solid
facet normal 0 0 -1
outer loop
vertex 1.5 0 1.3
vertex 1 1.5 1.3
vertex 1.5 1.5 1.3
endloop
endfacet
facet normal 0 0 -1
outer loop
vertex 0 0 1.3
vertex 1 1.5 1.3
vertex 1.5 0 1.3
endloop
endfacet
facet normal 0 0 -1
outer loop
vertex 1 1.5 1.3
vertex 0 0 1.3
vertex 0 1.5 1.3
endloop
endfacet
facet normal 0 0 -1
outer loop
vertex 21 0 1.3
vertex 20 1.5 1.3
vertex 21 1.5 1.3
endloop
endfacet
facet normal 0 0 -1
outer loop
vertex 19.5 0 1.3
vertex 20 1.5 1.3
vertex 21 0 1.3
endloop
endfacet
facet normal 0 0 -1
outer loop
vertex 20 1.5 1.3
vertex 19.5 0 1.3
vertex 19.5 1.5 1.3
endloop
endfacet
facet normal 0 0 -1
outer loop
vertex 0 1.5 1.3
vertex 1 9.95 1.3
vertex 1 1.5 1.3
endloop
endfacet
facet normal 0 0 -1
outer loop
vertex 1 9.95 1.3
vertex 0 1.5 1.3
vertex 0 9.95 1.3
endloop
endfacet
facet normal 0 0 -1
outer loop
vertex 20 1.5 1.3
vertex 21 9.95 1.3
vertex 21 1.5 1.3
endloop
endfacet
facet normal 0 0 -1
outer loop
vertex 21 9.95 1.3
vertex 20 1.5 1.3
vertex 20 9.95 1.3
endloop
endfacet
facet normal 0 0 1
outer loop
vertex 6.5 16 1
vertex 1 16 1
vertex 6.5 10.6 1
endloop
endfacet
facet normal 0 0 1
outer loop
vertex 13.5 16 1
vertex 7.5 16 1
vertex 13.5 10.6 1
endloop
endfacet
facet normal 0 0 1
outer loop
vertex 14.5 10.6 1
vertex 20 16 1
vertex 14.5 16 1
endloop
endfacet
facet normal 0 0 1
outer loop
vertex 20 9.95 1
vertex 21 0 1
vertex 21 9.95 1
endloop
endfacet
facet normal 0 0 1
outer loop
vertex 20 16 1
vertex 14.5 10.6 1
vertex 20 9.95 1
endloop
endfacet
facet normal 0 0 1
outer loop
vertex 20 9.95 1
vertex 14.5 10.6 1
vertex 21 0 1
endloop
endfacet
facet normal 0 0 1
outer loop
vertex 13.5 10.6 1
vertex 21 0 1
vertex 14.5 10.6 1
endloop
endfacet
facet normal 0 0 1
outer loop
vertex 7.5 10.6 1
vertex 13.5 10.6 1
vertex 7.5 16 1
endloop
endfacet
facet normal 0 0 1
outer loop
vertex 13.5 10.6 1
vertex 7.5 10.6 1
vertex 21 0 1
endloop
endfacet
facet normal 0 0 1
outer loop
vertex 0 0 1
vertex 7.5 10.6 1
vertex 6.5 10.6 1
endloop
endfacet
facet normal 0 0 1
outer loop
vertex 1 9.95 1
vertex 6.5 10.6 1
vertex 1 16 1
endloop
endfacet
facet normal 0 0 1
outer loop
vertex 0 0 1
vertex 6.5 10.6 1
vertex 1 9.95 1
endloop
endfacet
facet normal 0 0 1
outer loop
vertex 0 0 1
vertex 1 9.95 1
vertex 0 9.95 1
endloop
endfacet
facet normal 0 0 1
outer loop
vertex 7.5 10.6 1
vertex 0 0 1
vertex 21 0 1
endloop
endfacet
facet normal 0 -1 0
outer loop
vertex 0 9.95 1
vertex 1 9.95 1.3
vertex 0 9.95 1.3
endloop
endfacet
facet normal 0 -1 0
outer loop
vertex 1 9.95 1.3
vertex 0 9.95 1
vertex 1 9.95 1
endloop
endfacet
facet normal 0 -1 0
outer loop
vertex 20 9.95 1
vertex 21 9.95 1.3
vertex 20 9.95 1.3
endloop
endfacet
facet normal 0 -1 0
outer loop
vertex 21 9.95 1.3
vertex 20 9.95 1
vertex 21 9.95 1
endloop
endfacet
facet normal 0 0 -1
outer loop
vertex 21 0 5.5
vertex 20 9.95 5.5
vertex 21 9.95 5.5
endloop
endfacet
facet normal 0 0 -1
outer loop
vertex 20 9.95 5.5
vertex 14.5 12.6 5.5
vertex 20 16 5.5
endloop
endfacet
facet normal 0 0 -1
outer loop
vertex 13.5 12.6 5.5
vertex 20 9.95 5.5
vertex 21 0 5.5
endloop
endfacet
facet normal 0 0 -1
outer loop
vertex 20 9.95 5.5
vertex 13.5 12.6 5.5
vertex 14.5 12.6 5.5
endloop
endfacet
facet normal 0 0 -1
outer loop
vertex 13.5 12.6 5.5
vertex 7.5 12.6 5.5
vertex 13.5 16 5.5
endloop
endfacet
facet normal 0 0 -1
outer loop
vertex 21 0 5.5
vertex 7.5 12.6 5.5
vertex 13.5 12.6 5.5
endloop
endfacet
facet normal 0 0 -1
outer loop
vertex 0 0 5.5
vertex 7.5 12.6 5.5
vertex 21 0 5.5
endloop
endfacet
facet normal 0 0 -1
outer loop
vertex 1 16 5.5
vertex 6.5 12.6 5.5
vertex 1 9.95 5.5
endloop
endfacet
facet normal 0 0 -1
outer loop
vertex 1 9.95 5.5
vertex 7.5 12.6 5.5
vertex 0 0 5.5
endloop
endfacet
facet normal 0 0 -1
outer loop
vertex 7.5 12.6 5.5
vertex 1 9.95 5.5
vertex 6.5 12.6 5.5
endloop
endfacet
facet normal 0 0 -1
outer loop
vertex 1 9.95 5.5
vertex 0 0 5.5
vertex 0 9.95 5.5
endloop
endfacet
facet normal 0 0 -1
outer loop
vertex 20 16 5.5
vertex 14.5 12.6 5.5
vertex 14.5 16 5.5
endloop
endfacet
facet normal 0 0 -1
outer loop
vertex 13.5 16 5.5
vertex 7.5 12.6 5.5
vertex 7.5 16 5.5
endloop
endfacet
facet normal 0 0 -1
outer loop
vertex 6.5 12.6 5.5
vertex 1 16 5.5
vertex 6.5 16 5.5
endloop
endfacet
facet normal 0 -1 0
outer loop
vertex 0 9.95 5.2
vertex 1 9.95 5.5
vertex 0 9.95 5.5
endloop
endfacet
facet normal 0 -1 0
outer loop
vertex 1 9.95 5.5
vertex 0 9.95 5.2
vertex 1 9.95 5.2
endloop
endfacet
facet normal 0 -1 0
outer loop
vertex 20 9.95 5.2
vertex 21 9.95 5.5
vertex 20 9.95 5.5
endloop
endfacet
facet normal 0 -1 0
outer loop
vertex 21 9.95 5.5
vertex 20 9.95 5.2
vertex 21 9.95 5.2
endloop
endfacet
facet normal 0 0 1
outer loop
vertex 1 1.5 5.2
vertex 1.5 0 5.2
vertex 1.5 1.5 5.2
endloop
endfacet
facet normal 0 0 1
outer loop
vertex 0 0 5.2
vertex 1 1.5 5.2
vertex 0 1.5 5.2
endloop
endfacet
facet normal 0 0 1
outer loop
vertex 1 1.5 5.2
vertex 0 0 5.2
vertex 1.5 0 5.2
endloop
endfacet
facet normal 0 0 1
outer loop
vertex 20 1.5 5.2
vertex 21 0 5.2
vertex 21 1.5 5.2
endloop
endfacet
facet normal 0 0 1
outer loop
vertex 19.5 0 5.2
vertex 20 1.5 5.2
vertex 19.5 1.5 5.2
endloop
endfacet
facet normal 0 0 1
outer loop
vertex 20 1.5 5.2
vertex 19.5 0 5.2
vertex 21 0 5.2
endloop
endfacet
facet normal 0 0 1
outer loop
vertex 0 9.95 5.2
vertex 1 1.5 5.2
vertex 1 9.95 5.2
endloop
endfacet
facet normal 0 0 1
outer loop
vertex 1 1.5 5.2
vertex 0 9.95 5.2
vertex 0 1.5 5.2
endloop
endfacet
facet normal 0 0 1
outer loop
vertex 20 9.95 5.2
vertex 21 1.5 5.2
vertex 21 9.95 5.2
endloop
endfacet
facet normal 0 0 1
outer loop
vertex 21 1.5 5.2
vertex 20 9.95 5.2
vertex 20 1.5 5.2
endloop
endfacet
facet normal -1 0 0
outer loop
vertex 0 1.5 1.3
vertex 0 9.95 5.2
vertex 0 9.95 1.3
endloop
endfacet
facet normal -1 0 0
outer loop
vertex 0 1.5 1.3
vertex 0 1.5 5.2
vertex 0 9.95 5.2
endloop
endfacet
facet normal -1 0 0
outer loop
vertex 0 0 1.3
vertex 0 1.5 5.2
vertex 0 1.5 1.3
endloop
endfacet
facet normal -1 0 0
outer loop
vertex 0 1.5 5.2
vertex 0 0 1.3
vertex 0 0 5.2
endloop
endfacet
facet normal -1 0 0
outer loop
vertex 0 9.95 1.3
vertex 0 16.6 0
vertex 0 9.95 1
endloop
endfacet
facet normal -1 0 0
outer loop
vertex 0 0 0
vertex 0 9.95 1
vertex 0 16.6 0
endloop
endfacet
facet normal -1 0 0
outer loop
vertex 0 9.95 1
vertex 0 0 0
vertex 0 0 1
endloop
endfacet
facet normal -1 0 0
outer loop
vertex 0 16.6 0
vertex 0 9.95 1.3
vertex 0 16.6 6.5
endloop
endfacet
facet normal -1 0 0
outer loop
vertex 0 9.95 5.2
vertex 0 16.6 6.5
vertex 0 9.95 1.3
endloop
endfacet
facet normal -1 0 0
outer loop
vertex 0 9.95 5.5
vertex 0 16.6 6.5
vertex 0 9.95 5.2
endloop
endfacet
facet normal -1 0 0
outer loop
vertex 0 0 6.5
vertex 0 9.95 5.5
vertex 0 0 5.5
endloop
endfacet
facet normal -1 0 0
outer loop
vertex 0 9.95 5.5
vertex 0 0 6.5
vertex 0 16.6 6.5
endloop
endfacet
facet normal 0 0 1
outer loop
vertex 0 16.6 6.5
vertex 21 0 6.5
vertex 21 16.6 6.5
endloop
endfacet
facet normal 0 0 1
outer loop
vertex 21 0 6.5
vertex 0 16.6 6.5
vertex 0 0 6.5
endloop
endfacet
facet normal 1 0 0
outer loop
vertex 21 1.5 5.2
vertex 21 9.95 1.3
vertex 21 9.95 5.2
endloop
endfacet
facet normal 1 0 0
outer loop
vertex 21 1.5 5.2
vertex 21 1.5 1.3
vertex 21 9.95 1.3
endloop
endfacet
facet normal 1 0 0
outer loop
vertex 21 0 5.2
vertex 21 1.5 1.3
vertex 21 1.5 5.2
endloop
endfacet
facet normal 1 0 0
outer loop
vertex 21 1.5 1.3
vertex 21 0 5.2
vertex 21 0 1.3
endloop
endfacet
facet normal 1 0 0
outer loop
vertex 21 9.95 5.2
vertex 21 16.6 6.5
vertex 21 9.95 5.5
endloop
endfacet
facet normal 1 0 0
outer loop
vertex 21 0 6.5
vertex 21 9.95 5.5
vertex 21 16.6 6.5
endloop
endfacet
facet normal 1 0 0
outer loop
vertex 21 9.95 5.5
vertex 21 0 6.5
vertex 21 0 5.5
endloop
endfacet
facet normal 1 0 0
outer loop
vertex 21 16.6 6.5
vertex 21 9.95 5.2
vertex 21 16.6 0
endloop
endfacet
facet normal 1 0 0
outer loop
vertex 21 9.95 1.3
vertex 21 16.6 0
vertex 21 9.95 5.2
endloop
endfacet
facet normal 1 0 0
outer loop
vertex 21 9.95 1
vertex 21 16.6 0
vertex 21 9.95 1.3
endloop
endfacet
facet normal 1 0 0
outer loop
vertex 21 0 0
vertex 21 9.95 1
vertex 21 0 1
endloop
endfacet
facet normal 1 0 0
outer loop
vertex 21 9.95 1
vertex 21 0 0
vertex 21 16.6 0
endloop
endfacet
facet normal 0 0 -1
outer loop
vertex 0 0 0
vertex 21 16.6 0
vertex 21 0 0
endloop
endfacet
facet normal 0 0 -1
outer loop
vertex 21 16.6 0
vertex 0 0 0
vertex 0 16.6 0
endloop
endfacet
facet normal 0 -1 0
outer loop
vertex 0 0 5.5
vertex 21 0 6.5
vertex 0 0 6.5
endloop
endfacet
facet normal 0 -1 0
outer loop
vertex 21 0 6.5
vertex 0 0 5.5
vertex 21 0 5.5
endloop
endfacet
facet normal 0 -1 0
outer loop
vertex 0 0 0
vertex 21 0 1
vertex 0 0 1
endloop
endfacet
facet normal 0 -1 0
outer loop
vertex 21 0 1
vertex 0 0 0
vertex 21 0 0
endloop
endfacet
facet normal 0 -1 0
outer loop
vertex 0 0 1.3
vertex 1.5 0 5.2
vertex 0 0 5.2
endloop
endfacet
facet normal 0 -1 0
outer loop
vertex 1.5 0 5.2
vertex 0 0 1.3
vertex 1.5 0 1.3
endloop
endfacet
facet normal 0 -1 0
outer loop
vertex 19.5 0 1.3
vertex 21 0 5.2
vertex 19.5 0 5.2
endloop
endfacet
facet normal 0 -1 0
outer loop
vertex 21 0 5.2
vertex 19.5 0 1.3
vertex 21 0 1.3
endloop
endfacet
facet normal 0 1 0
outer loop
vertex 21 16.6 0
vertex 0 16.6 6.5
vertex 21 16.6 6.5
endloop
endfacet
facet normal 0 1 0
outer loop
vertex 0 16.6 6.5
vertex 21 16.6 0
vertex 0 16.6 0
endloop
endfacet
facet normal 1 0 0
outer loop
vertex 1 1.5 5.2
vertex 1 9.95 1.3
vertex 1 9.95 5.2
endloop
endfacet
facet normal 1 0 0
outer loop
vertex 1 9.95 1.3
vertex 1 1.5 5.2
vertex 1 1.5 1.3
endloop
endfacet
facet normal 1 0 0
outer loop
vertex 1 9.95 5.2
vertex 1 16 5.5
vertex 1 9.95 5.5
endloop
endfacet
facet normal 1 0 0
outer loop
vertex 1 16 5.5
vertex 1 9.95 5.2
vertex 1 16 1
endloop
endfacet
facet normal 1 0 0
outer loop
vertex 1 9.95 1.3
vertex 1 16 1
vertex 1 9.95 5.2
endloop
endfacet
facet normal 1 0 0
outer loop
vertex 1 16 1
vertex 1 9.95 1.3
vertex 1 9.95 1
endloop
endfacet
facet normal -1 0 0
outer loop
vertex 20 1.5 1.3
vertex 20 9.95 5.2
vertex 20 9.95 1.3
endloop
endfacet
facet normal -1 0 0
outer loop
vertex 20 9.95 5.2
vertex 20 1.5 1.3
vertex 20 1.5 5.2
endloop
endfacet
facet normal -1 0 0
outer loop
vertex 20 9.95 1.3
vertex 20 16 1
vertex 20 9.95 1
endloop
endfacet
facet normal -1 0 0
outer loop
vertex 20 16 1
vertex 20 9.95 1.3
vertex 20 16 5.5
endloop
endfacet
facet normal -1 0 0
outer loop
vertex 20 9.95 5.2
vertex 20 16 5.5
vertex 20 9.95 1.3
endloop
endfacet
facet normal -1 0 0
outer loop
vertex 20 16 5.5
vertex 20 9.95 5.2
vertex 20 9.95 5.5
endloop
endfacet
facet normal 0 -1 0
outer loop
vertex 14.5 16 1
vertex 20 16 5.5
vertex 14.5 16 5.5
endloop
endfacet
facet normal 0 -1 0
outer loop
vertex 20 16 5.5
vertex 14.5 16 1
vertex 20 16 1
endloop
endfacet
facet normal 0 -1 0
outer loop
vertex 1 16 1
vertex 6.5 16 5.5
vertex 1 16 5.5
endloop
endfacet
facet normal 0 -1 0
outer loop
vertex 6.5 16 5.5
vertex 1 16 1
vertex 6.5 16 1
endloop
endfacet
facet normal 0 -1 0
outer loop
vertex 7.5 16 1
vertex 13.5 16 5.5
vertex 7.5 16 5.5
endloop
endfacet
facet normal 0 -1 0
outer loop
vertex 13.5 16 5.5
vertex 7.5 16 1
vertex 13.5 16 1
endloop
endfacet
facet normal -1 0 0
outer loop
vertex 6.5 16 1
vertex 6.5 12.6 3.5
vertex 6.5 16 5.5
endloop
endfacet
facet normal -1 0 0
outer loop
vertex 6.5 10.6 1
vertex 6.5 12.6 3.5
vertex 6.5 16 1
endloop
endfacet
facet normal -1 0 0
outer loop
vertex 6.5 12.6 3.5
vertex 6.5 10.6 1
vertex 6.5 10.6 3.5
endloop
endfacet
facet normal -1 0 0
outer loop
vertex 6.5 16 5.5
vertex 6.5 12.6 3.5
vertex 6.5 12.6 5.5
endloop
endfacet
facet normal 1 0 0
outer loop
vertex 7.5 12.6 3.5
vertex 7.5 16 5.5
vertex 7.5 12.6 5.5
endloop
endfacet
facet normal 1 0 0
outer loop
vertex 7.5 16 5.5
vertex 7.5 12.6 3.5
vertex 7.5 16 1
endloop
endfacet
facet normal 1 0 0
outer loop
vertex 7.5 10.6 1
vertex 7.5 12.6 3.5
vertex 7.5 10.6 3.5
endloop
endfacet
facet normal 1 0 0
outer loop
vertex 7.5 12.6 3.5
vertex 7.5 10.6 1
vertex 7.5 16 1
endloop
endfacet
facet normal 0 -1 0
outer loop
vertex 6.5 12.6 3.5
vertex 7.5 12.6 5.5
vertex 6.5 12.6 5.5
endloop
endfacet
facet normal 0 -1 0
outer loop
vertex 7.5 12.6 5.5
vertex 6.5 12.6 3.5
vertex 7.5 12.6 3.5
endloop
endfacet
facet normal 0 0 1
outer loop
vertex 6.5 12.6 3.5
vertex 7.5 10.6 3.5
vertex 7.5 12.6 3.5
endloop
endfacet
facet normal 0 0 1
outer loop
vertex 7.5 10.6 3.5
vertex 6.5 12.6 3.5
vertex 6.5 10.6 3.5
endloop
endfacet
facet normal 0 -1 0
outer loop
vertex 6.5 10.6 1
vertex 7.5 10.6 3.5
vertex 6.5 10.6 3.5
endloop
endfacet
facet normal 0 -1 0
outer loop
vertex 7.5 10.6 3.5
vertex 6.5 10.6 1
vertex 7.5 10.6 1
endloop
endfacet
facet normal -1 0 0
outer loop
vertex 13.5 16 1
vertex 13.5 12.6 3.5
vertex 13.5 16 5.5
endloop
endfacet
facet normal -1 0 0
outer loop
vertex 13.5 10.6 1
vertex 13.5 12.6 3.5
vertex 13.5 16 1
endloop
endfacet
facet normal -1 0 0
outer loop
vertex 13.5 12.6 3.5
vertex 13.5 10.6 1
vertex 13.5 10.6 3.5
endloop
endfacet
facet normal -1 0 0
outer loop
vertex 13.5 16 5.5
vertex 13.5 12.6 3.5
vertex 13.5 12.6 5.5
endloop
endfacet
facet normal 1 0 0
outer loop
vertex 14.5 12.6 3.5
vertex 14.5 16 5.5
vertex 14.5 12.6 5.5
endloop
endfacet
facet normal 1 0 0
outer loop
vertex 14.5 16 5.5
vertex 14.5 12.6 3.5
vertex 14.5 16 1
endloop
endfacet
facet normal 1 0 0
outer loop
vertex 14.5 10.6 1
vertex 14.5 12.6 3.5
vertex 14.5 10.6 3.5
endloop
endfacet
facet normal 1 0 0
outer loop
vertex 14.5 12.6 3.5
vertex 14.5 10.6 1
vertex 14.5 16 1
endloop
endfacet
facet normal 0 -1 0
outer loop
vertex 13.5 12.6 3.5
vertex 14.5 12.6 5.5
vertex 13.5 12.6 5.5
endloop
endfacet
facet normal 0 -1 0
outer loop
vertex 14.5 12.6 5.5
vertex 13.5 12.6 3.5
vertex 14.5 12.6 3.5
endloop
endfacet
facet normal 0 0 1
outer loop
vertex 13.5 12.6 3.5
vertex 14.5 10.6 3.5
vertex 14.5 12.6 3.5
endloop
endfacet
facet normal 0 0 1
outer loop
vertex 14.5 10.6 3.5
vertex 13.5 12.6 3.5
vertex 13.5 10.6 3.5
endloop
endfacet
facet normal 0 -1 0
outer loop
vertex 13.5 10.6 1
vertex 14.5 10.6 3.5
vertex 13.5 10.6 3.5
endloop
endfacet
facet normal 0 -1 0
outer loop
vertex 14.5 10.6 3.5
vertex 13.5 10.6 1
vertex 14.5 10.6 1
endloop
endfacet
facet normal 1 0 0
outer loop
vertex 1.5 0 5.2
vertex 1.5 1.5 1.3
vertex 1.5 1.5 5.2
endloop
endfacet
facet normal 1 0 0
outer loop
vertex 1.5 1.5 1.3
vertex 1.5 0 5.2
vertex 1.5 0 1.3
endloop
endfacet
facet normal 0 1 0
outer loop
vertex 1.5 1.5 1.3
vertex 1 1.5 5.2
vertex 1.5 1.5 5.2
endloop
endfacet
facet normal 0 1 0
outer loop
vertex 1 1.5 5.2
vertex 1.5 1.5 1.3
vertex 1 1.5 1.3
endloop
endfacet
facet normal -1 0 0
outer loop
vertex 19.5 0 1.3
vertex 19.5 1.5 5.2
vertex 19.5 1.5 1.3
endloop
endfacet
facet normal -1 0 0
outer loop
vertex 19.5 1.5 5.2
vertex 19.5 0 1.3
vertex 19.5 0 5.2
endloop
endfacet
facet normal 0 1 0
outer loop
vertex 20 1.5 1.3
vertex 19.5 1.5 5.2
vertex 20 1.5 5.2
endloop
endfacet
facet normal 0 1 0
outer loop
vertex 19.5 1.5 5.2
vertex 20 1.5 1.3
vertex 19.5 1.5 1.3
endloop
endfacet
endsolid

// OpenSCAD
/* Cylon cover — slide-on shell for the board.
 *
 * The board enters from the open front (Y = 0) and butts against the back
 * wall. Two shallow grooves at the top and bottom of the cavity act as
 * retention lips, and the small posts at the front corners locate the board.
 *
 * Everything below is parametric; the defaults reproduce the original part.
 * Dimensions are in millimetres. Each parameter group has a section comment so
 * it shows up grouped in OpenSCAD's Customizer.
 */

/* [Board] */
board_w   = 19;    // board width (X)
board_d   = 16;    // board depth that slides into the cover (Y)
board_h   = 4.5;   // board + tallest component (Z)

/* [Shell] */
wall      = 1;     // side, floor and roof thickness
back_wall = 0.6;   // material left behind the board

/* [Retention grooves] */
groove_h     = 0.3; // groove height (Z)
groove_inset = 6;   // how far the groove stops short of the back (Y)
cut          = 0.05; // overcut so the groove clears the side walls

/* [Back clips] */
clip_w     = 1;    // clip width (X)
clip_d     = 4;    // clip depth (Y)
clip_inset = 4;    // clip front face offset from the outer back (Y)
tab_h      = 3.5;  // short tab height (Z)
tab_d      = 6;    // short tab depth (Y)

/* [Front posts] */
post   = 1.5;         // post cross-section (X/Y)
post_h = 3.9;         // post height (Z)
post_z = wall + 0.3;  // post base height (Z)

/* [Hidden] */
outer_w = board_w + 2 * wall;  // overall width
outer_d = board_d + back_wall; // overall depth
outer_h = board_h + 2 * wall;  // overall height

// --------------------------------------------------------------- modules

// Hollow shell: open at the front, closed at the back, with both grooves.
module shell() {
    difference() {
        cube([outer_w, outer_d, outer_h]);

        // board cavity (the extra `cut` keeps the back wall exactly back_wall deep)
        translate([wall, -cut, wall])
            cube([board_w, board_d + cut, board_h]);

        // retention grooves at the floor and roof of the cavity
        for (z = [wall, wall + board_h - groove_h])
            translate([-cut, -cut, z])
                cube([outer_w + 2 * cut, board_d - groove_inset, groove_h]);
    }
}

// Back clips: two full-height clips plus two shorter locating tabs.
module clips() {
    for (x = [outer_w / 3, outer_w * 2 / 3]) {
        translate([x - clip_w / 2, outer_d - clip_inset, 0])
            cube([clip_w, clip_d, outer_h]);
        translate([x - clip_w / 2, outer_d - tab_d, 0])
            cube([clip_w, tab_d, tab_h]);
    }
}

// Front corner posts that locate the board.
module posts() {
    for (x = [0, outer_w - post])
        translate([x, 0, post_z])
            cube([post, post, post_h]);
}

// --------------------------------------------------------------- assembly

union() {
    shell();
    clips();
    posts();
}
